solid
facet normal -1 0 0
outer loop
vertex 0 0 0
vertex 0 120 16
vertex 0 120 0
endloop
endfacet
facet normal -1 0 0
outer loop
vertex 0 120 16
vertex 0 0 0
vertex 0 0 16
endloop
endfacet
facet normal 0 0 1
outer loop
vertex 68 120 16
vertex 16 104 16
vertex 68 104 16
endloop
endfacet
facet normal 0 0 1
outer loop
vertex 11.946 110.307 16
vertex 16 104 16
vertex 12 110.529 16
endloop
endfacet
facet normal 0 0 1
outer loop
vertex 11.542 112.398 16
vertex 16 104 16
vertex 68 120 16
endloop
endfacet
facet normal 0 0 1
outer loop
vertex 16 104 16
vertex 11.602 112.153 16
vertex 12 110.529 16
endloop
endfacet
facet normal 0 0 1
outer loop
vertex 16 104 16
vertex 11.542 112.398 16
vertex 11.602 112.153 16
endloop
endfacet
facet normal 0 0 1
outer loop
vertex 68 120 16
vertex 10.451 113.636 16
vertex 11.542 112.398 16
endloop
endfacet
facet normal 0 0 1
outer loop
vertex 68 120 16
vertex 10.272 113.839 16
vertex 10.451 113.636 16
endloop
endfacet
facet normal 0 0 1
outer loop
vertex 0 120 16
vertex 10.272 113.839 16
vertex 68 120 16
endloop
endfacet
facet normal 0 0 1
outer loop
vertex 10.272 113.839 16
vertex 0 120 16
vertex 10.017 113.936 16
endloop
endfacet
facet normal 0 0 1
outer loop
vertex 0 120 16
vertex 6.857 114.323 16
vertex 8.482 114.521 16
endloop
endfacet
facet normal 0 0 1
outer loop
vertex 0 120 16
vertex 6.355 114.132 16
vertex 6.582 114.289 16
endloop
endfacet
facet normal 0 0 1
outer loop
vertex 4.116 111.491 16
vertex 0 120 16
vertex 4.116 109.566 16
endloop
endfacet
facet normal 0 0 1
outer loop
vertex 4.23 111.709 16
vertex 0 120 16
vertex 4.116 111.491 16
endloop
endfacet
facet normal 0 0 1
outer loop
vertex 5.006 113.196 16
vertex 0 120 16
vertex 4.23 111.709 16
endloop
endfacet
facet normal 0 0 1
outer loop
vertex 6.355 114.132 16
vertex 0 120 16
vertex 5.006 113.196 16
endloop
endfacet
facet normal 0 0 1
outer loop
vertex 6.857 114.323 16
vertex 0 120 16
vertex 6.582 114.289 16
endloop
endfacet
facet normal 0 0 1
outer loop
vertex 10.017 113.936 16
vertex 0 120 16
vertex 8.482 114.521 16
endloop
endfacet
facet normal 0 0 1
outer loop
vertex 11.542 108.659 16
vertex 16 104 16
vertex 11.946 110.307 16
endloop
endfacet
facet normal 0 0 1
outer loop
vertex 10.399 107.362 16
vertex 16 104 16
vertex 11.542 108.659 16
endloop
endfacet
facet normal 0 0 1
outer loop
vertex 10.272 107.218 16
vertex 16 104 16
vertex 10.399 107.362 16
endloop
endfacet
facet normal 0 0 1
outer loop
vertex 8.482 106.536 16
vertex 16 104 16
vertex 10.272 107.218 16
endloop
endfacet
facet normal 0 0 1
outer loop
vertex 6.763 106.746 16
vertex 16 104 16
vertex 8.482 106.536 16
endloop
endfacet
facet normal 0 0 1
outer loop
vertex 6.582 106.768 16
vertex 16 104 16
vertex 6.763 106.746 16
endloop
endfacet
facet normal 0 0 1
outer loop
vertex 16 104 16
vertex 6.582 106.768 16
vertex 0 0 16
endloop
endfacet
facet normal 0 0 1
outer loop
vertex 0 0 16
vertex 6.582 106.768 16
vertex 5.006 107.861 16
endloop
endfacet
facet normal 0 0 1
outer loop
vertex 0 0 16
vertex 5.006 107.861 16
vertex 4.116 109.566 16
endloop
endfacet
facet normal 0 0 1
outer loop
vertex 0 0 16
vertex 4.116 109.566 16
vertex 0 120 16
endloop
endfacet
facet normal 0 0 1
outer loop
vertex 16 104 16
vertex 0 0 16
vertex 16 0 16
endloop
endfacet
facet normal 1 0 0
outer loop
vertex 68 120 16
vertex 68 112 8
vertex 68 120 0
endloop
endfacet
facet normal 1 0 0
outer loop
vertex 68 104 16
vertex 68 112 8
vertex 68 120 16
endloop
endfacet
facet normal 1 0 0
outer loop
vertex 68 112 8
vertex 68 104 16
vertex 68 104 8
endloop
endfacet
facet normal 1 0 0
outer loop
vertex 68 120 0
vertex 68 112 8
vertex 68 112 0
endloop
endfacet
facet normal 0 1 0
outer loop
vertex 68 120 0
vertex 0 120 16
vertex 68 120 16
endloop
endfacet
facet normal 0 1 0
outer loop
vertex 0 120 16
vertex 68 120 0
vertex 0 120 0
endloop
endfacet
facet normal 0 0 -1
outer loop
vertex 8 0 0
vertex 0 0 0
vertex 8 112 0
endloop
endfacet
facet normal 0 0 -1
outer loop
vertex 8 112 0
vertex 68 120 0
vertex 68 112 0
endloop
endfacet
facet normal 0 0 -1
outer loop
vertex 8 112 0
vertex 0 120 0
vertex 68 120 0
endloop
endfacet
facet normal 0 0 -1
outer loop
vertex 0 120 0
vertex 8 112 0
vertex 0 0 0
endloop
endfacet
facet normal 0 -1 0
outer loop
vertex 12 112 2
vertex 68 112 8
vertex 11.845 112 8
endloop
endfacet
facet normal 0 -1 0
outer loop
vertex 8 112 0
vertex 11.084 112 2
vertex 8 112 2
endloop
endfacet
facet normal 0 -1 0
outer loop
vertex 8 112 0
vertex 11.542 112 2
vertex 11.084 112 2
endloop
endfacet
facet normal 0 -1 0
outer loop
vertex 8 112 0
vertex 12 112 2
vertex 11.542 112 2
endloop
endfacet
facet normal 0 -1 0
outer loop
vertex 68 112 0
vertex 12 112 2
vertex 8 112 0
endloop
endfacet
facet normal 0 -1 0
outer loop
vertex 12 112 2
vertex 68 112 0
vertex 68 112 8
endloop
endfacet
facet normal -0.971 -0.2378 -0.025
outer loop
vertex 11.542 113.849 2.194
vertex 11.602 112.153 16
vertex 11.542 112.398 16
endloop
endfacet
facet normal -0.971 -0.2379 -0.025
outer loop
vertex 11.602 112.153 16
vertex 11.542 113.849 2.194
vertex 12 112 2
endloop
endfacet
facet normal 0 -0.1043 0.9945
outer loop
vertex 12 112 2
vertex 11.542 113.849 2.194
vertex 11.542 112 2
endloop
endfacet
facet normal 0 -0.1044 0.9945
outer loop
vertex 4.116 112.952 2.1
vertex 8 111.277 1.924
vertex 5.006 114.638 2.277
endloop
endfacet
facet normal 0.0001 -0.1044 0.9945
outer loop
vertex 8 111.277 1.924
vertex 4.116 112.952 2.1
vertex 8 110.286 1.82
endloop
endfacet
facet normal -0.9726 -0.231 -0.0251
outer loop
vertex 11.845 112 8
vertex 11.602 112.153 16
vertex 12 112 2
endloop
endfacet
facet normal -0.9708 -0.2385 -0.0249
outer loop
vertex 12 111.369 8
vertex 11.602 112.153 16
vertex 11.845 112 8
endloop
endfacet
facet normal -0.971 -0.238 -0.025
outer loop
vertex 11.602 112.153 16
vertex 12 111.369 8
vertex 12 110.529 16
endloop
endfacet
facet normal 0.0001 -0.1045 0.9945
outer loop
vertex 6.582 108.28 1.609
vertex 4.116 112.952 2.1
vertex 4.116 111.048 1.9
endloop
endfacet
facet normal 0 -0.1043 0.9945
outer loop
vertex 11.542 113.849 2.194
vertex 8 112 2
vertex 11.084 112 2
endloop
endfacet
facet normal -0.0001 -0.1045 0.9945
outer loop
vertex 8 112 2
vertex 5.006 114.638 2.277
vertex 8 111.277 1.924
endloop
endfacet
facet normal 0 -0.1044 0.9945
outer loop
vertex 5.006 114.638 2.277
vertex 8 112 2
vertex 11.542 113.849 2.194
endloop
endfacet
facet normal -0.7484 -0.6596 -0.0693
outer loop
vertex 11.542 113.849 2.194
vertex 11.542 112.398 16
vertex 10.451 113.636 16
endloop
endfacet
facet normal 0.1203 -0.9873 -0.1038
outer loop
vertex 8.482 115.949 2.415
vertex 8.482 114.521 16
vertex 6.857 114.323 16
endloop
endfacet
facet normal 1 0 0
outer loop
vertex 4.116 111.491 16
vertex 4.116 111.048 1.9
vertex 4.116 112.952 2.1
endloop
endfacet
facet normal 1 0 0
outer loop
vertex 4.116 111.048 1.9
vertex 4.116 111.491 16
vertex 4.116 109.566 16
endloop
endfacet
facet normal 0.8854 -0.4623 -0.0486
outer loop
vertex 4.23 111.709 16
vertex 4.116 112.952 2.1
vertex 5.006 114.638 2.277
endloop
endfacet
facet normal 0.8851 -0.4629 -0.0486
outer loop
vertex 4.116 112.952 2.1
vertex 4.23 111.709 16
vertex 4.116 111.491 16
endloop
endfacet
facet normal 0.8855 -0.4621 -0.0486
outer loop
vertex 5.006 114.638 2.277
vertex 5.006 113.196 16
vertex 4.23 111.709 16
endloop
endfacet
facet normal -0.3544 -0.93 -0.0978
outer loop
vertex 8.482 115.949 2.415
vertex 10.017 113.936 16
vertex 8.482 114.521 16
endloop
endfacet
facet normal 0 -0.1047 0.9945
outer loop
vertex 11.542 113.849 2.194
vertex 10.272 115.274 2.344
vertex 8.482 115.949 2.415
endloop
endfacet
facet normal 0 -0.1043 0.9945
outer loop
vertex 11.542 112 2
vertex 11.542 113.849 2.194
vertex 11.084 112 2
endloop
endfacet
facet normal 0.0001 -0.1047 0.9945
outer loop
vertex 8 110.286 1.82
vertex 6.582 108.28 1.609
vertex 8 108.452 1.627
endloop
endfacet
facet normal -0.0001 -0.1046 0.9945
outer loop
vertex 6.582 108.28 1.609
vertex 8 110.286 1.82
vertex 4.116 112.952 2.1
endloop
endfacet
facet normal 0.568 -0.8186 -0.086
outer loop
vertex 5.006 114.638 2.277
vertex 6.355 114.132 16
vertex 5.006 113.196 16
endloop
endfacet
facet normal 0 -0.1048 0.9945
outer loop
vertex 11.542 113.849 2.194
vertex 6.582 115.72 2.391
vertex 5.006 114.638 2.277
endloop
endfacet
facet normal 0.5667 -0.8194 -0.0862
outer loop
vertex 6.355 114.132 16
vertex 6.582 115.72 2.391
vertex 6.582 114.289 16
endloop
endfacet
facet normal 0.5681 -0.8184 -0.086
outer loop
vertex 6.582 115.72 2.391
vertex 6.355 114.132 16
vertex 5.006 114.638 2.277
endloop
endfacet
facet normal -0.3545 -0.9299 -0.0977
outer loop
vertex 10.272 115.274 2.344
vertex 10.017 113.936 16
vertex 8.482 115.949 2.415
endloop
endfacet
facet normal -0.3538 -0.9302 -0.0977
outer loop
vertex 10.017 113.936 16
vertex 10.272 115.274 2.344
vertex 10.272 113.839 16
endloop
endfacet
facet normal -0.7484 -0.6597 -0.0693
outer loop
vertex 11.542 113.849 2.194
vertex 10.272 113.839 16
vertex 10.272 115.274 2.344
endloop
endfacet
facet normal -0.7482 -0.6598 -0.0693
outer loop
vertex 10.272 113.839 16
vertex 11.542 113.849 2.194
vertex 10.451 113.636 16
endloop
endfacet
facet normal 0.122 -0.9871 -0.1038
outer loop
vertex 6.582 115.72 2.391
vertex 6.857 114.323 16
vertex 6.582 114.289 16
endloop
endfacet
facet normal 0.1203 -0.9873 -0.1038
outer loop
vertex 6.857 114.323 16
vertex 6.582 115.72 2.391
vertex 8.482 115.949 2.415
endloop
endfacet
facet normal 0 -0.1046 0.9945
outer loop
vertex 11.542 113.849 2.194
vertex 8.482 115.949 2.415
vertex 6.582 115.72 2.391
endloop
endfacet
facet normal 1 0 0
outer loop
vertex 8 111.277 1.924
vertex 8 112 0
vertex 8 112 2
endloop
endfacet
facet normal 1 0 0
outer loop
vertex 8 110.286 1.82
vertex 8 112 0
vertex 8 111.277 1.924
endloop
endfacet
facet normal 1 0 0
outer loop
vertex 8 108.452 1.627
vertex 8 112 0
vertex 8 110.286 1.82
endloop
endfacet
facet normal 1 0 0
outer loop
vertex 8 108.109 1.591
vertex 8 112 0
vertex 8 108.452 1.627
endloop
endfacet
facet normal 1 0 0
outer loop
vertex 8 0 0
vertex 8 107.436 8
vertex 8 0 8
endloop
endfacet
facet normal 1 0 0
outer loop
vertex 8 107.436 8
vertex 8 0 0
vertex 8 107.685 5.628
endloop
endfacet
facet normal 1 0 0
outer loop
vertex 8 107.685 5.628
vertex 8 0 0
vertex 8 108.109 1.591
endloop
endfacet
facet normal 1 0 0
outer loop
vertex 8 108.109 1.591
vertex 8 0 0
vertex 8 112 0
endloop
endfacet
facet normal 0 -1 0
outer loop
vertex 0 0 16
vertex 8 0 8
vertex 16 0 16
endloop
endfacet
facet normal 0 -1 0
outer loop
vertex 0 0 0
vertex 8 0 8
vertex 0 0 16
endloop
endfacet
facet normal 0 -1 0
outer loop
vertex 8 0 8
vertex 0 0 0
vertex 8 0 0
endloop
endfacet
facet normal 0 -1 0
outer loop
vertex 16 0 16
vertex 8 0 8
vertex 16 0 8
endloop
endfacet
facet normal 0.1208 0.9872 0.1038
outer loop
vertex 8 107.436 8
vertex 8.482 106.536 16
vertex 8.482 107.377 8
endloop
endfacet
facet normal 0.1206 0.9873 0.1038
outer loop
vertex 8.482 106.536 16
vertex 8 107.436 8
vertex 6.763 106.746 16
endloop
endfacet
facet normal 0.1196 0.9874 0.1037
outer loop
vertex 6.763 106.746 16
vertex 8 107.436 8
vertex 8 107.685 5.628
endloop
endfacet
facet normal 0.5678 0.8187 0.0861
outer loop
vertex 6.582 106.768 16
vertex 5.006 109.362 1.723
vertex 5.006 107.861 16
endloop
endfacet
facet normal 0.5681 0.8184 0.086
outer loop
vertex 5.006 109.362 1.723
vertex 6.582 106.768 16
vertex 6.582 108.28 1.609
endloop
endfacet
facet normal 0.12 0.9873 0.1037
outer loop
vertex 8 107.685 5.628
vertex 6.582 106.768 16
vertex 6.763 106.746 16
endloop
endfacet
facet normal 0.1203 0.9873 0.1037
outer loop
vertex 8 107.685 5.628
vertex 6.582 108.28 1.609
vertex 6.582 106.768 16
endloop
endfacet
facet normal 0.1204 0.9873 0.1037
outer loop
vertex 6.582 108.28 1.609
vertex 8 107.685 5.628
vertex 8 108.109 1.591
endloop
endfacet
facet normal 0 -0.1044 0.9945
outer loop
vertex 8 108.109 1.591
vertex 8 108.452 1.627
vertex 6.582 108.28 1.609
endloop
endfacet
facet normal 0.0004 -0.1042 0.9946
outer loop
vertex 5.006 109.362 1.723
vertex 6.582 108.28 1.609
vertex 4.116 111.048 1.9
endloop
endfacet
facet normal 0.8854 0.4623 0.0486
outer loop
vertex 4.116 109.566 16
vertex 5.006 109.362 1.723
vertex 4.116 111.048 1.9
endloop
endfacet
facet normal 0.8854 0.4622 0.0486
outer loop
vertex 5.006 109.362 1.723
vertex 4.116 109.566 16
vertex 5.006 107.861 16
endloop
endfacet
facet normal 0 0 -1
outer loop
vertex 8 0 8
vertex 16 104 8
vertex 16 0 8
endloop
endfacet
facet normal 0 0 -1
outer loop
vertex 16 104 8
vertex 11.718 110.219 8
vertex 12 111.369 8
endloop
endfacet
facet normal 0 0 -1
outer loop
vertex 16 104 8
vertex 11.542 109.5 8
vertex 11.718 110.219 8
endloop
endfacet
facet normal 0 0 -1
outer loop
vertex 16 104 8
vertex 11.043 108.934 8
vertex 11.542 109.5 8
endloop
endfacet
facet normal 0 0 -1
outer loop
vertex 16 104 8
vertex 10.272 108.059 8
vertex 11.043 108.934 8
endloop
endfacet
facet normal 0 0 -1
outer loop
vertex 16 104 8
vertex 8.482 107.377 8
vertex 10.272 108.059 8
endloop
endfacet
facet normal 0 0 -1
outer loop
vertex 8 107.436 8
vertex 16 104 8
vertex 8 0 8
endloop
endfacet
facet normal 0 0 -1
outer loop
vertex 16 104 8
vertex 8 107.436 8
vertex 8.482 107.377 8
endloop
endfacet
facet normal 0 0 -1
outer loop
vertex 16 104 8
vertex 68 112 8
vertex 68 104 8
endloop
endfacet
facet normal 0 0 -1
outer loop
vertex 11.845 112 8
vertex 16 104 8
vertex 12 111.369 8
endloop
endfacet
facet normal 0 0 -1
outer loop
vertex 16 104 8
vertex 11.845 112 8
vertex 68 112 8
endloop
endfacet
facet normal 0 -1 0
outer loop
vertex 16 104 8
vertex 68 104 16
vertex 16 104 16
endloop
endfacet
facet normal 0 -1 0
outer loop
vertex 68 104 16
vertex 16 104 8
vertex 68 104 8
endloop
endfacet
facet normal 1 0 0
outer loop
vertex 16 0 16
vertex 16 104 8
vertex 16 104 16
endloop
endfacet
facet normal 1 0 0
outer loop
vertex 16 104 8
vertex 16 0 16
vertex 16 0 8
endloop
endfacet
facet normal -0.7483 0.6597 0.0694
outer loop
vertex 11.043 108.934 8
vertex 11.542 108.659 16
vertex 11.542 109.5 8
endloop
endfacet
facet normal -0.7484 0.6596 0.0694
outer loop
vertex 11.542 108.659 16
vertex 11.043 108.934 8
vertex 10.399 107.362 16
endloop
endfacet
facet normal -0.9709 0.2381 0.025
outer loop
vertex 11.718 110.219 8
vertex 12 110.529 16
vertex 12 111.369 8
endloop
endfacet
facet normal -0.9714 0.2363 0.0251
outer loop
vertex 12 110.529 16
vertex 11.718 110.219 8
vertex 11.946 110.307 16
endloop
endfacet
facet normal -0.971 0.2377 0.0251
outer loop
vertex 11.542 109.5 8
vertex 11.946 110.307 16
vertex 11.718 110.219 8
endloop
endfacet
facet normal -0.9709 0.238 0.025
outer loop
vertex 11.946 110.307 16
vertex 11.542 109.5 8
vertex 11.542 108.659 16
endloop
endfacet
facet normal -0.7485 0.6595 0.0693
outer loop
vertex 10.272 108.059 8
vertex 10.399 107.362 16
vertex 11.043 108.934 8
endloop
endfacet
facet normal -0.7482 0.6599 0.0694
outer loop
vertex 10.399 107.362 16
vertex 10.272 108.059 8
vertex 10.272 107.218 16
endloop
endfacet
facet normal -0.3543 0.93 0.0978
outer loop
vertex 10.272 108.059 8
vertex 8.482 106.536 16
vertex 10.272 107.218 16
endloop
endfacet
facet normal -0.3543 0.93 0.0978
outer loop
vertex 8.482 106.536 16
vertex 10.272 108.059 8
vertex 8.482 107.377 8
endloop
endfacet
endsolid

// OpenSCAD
// ipad dimensions. the wrapper will be bigger than this so it slides in.
ipad_width = 60;
ipad_height = 104;

// how big the frame itself will be
border_size = 8;

// nail hole info
nail_diameter = 4;
nail_angle = 6; // degrees

module nail() {
	translate([border_size, ipad_height + border_size, 2]) {
		rotate([nail_angle, 0, 0]) {
			cylinder(border_size * 2, nail_diameter, nail_diameter);
		}
	}
}

// top edge
difference() {
	translate([0, ipad_height + border_size, 0]) {
		cube([ipad_width + border_size, border_size, border_size * 2]);
	}

	nail();
}

// side
difference() {
	cube([border_size, ipad_height + border_size * 2, border_size * 2]);

	nail();
}


// ridges
/////////////////////////////////////////////////////////////////////////////

difference() {
	translate([0, 0, border_size]) {
		// top
		translate([0, ipad_height, 0]) {
			cube([ipad_width + border_size, border_size * 2, border_size]);
		}

		// side
		cube([border_size * 2, ipad_height + border_size * 2, border_size]);
	}

	nail();
}
